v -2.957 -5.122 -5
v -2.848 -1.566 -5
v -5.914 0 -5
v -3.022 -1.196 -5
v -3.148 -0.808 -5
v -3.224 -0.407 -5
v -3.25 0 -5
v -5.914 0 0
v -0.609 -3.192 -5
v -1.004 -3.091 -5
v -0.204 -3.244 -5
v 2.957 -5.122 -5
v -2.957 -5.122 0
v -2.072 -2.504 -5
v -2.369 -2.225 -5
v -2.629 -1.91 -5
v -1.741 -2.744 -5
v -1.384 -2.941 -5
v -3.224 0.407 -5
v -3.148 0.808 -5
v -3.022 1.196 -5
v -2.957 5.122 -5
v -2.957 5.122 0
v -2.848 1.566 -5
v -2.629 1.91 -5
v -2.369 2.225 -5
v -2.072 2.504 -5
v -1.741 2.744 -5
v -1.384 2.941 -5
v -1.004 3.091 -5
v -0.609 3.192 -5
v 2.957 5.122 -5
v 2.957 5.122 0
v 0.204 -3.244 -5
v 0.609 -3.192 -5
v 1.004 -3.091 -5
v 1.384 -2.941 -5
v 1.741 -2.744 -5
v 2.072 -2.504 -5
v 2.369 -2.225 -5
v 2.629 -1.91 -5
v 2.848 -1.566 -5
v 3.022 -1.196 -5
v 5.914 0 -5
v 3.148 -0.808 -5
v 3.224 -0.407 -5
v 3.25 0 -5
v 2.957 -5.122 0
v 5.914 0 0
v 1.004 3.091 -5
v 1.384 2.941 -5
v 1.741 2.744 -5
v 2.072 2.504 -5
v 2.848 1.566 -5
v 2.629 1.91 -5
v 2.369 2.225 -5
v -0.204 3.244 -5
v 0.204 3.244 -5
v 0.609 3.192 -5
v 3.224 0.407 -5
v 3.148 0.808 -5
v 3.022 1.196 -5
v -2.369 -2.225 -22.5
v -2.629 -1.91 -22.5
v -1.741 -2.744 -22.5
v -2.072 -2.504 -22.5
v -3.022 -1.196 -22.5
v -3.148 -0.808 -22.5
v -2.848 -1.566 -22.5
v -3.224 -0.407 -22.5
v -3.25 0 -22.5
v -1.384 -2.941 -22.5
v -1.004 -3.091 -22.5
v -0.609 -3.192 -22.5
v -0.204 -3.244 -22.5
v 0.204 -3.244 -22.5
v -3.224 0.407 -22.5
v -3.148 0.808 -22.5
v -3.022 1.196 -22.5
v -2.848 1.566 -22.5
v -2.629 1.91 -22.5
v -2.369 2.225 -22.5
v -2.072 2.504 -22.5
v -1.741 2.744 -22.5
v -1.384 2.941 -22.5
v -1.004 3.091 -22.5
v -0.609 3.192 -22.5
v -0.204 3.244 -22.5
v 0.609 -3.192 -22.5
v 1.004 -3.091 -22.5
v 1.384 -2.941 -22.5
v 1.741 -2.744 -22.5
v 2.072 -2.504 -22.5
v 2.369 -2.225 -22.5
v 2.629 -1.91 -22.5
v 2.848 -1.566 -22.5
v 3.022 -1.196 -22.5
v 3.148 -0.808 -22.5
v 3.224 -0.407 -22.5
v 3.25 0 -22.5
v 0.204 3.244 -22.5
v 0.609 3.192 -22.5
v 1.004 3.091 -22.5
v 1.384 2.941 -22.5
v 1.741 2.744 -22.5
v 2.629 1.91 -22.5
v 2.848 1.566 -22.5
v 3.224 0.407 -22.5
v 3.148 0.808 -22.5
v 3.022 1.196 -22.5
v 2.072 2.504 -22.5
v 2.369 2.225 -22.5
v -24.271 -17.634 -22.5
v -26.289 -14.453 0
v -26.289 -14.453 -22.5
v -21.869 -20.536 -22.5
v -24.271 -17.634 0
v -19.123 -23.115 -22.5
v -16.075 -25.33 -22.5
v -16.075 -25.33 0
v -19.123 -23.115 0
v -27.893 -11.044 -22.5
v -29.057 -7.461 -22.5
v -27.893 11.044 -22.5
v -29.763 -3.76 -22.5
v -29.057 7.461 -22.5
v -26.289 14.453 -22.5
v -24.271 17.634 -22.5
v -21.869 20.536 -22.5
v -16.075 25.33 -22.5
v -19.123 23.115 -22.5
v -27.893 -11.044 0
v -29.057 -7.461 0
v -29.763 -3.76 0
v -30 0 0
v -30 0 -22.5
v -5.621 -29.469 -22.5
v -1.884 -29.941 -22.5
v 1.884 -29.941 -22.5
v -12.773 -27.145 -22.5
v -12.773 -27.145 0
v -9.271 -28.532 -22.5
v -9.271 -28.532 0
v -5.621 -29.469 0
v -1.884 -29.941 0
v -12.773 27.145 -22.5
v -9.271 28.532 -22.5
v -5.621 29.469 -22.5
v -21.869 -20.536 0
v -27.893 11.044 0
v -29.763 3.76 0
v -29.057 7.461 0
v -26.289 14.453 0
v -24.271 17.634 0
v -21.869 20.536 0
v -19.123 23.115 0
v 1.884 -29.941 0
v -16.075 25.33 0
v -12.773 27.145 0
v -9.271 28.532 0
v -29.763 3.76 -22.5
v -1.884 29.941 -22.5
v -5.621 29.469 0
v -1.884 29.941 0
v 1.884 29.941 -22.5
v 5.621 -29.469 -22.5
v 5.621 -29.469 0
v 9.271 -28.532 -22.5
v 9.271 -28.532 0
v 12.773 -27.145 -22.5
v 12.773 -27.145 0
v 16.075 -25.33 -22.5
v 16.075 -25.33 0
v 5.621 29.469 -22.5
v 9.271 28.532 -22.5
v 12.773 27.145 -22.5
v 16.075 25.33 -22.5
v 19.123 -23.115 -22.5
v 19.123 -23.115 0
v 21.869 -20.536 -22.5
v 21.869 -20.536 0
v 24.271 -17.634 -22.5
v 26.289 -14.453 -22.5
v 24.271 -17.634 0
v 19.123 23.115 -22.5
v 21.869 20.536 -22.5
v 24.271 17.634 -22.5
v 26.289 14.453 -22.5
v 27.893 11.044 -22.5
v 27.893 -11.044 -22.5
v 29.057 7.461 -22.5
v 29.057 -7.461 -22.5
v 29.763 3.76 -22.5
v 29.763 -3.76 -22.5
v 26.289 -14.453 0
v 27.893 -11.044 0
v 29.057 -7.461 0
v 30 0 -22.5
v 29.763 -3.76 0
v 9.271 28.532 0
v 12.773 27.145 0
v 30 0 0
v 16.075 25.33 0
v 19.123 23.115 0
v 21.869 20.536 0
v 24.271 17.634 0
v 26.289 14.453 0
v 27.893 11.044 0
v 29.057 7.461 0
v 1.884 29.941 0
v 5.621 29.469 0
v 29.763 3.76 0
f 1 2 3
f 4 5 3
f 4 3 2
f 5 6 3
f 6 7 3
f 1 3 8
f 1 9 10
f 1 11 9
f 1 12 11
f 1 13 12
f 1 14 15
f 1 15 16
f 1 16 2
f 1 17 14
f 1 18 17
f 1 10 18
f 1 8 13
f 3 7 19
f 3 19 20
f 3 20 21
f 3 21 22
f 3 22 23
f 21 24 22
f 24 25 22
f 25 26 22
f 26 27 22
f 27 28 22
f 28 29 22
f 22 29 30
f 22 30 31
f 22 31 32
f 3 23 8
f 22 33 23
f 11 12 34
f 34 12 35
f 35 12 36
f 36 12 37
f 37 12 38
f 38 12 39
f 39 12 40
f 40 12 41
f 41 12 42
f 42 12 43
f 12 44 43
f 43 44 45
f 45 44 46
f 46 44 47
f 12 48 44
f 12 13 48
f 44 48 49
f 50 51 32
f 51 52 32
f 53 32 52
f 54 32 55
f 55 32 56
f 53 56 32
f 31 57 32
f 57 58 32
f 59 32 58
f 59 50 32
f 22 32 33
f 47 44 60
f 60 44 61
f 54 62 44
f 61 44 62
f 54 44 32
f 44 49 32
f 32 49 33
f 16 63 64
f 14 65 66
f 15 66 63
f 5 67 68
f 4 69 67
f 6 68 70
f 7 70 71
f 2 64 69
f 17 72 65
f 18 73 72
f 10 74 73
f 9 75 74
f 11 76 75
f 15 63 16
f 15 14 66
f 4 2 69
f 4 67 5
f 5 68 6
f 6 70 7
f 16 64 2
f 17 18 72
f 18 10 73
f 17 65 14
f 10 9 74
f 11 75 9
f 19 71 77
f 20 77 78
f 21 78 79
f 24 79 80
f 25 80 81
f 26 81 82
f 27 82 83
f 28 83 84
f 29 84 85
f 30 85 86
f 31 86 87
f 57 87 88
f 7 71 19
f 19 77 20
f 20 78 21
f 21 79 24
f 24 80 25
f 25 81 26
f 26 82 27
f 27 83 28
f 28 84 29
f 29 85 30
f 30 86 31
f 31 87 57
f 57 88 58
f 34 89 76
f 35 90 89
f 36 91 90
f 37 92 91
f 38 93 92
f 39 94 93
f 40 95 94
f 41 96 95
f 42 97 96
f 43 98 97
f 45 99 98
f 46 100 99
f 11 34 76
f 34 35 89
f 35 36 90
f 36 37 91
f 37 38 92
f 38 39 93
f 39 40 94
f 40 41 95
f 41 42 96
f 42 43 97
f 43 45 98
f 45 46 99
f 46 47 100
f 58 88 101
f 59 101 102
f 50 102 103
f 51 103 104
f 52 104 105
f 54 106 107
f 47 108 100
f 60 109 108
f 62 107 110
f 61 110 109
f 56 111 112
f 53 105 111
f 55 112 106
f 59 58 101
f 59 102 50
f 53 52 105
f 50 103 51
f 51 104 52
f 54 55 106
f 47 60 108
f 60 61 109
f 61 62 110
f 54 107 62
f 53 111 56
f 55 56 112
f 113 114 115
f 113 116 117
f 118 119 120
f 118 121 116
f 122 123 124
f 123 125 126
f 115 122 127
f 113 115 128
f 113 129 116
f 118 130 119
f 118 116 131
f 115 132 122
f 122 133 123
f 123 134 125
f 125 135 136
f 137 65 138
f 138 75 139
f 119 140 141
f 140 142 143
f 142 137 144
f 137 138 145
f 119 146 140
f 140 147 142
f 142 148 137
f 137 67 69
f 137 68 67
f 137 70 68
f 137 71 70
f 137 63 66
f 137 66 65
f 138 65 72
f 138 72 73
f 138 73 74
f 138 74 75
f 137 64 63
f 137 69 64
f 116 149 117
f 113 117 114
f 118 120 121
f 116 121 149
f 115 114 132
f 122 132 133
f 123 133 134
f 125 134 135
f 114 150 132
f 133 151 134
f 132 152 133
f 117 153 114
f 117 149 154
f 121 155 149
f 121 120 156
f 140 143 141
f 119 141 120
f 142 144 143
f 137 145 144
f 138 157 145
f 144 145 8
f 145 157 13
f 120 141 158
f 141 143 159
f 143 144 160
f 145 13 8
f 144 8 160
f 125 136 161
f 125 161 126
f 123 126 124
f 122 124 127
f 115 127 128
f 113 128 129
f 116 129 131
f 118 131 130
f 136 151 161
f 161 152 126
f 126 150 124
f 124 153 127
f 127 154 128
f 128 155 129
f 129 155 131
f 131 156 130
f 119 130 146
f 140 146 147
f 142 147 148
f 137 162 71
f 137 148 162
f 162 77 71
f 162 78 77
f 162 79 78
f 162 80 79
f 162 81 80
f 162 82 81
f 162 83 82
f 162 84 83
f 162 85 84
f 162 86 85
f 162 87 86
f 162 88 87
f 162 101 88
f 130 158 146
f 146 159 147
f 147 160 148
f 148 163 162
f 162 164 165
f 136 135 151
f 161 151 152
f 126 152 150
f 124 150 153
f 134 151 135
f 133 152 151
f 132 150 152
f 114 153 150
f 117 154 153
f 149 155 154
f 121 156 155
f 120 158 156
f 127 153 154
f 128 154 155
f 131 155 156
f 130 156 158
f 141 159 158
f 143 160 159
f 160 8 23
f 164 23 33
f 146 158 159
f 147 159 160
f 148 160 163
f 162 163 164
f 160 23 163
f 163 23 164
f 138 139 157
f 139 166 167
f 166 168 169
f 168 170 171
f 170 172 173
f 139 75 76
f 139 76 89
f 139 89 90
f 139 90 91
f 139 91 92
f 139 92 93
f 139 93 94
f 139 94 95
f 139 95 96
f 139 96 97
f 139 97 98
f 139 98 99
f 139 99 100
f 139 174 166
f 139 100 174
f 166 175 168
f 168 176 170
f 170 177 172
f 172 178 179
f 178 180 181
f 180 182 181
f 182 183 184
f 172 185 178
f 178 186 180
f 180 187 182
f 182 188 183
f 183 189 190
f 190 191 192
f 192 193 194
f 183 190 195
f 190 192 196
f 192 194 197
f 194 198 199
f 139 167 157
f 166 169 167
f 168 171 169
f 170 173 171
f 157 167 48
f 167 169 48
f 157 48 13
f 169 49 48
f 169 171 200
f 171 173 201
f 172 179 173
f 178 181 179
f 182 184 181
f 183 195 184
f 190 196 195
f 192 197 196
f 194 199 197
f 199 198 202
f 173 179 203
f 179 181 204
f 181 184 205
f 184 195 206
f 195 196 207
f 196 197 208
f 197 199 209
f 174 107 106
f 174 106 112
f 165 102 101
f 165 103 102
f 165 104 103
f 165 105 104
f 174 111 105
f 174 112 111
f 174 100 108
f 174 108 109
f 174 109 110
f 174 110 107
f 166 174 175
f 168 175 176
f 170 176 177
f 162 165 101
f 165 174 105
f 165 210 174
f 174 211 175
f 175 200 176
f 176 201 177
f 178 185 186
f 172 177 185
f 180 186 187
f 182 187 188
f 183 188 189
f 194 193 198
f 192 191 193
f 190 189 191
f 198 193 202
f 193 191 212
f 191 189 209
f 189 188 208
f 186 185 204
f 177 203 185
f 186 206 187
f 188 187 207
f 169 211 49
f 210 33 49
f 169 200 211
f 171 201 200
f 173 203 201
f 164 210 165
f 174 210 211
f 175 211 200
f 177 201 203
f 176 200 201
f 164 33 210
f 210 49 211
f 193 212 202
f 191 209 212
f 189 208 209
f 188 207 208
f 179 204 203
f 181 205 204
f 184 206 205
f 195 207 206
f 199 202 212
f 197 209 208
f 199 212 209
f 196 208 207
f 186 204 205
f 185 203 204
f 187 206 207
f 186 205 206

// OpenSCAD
$fn = 50;

difference() {
	union() {
		translate(v = [0, 0, -22.5]) {
			cylinder(h = 22.5, r = 30.0);
		}
	}
	union() {
		translate(v = [0, 0, 0]) {
			rotate(a = [0, 0, 0]) {
				difference() {
					union() {
						translate(v = [0, 0, -5]) {
							linear_extrude(height = 5) {
								polygon(points = [[5.914249999999999, 0.0], [2.957125, 5.1218907443321156], [-2.9571249999999982, 5.1218907443321156], [-5.914249999999999, 7.242867331857232e-16], [-2.9571250000000022, -5.121890744332115], [2.9571249999999956, -5.121890744332118]]);
							}
						}
					}
					union();
				}
			}
		}
		#translate(v = [0, 0, -100.0]) {
			cylinder(h = 200, r = 3.25);
		}
	}
}
